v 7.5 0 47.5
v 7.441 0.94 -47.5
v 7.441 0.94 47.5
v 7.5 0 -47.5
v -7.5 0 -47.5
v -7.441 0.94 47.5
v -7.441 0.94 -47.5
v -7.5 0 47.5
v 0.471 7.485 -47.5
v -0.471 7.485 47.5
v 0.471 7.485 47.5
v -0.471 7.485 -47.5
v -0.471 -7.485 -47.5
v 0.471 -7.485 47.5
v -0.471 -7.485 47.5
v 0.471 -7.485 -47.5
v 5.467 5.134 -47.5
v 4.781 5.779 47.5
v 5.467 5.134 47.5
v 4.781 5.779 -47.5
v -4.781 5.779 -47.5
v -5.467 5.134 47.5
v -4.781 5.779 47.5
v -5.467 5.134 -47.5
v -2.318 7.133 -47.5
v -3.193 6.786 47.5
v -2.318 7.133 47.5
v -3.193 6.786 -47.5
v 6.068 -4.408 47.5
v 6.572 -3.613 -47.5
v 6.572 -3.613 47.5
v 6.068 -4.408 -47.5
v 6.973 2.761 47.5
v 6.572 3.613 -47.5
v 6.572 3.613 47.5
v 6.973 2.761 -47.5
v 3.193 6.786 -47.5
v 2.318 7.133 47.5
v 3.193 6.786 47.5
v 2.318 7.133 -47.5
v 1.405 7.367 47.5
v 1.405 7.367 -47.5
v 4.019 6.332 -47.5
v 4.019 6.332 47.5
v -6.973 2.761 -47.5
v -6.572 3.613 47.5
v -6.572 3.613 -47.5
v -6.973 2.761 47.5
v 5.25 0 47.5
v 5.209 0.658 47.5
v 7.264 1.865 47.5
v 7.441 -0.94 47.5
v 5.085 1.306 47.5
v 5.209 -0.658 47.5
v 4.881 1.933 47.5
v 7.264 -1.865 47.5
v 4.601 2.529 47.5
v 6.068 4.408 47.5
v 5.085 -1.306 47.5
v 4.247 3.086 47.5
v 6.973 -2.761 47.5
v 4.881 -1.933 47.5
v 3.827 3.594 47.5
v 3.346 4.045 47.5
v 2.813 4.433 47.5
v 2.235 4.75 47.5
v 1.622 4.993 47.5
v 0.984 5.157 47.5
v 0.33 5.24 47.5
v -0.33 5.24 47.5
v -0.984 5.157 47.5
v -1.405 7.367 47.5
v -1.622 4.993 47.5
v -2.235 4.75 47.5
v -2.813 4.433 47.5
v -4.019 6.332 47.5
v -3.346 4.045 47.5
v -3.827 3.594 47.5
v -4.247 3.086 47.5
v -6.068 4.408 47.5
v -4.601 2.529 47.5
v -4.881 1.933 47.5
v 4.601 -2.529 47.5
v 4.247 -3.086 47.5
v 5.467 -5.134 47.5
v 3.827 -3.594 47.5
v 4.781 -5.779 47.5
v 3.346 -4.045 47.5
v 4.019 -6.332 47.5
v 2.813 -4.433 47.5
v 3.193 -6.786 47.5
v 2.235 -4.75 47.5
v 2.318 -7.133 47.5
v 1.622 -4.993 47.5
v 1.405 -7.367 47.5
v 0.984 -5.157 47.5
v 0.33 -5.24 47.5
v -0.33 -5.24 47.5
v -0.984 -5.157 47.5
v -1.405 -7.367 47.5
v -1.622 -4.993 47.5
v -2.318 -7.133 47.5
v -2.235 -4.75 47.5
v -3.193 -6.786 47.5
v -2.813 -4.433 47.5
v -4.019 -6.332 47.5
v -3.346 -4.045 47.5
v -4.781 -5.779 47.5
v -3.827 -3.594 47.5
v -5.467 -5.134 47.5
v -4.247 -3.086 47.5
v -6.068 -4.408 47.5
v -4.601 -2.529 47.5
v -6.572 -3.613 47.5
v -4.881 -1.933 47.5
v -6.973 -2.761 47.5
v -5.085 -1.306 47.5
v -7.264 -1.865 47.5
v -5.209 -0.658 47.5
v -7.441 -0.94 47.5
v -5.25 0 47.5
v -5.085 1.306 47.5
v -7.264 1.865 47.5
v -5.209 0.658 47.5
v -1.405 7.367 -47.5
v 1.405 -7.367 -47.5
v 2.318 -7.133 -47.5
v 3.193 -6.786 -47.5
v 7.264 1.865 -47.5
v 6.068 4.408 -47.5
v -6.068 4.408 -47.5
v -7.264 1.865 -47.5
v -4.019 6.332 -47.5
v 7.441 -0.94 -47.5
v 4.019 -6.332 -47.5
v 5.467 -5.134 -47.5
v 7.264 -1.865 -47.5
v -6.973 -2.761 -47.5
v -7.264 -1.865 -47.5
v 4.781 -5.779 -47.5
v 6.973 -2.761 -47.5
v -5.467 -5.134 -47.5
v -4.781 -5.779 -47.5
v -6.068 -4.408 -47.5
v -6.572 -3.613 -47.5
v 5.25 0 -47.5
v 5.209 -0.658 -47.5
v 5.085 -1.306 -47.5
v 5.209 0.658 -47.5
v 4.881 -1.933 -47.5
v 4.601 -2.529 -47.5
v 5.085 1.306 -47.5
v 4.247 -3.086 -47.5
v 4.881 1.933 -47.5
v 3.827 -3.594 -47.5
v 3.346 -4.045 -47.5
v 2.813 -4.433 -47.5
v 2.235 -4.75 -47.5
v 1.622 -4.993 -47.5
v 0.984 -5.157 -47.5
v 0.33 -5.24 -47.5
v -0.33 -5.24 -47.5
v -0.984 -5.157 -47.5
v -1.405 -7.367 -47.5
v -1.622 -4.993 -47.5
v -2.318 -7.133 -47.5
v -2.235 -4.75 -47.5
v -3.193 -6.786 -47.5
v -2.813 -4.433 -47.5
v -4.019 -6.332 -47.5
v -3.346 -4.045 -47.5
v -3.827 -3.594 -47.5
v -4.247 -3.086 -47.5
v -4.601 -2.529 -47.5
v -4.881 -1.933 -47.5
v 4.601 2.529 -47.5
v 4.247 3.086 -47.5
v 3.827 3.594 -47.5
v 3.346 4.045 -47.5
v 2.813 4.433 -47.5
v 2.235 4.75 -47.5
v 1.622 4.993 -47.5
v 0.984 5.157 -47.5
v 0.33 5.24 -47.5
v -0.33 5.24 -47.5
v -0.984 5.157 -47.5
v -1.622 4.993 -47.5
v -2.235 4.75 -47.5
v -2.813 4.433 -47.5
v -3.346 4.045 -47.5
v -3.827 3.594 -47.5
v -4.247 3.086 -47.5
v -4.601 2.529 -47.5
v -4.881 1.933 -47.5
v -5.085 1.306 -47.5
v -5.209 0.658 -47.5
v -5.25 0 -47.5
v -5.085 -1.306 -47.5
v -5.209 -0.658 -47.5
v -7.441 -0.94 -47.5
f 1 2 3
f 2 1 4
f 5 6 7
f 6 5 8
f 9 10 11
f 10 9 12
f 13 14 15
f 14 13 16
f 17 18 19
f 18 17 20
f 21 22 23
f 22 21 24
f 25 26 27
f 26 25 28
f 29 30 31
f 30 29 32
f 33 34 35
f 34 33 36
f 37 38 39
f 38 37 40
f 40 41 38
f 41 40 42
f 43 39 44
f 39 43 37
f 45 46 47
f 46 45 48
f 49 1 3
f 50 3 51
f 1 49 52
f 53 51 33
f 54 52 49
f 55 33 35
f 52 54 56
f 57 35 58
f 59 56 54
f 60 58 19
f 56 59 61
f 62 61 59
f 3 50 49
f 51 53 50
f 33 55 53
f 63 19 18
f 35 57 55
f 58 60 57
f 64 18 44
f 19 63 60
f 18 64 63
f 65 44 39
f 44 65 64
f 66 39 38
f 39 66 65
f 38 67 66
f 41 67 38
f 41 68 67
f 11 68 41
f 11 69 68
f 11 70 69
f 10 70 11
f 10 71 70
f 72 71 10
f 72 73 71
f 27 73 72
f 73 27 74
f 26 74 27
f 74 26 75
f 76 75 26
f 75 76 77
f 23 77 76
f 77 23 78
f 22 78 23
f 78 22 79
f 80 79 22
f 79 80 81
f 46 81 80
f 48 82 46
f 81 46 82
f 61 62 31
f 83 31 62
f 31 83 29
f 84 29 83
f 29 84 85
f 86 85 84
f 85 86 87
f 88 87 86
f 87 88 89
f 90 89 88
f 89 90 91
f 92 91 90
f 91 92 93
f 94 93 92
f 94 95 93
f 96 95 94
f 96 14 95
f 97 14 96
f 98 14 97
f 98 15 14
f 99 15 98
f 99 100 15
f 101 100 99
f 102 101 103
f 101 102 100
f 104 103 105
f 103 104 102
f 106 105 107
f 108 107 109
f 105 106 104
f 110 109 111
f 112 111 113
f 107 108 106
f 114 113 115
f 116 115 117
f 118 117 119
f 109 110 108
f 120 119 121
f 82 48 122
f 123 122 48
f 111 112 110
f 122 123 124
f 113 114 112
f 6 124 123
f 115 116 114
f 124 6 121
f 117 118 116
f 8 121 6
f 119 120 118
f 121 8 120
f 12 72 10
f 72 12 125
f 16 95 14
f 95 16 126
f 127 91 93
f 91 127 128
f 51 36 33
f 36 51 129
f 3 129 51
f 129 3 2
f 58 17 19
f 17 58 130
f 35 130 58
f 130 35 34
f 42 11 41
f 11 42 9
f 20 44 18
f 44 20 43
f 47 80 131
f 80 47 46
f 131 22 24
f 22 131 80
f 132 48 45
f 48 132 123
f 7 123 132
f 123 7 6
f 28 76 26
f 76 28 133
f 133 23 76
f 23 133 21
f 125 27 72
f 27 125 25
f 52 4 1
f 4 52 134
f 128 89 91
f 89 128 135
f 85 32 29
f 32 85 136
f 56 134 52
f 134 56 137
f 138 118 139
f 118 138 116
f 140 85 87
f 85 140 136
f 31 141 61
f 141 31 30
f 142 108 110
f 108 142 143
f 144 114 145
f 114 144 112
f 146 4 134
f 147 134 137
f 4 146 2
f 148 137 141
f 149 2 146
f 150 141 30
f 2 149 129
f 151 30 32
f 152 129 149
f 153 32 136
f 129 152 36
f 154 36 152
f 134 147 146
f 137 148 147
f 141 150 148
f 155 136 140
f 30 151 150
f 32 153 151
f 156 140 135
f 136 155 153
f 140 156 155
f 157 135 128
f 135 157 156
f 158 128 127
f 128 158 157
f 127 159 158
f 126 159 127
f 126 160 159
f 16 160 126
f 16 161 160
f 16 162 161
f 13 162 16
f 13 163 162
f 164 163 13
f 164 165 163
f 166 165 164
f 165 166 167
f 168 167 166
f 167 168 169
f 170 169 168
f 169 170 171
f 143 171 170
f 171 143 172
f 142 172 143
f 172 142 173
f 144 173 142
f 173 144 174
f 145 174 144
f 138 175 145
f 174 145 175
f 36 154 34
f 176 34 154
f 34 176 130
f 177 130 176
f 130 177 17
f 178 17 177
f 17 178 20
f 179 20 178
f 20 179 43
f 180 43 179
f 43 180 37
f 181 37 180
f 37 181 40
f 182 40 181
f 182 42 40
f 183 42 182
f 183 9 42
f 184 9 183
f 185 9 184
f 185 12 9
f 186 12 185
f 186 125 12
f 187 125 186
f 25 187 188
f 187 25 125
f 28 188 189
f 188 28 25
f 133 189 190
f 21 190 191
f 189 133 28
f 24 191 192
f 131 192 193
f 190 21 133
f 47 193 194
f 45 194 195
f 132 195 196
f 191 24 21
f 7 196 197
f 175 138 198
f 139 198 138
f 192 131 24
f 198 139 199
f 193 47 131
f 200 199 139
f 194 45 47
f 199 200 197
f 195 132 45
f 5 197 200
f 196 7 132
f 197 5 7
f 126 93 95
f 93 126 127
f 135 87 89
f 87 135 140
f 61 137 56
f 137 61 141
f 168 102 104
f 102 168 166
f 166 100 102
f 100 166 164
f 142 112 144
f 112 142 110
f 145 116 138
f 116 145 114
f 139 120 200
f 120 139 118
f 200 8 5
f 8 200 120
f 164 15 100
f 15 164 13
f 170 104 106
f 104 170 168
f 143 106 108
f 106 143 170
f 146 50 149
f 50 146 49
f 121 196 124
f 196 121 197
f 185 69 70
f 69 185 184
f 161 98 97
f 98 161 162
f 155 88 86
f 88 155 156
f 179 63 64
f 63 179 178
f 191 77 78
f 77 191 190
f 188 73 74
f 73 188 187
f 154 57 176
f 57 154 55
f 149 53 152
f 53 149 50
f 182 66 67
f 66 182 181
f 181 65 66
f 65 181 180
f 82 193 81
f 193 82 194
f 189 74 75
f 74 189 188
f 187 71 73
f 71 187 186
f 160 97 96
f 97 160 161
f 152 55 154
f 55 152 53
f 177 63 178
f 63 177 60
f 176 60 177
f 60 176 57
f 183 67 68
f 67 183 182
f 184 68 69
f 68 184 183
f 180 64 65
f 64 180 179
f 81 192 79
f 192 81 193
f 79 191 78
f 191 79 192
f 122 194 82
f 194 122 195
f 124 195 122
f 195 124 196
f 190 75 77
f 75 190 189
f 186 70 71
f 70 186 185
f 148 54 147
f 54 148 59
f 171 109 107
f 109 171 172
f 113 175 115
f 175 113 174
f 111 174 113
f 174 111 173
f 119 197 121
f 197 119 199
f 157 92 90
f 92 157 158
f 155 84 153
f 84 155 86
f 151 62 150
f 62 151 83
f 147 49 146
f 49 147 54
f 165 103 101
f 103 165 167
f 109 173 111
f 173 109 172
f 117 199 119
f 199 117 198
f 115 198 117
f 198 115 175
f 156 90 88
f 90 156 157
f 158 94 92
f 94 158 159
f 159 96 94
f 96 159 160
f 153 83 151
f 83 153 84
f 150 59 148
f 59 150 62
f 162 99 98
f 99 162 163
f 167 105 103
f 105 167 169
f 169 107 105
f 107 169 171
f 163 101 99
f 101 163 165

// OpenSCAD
$fn = 50;


difference() {
	union() {
		translate(v = [0, 0, -47.5000000000]) {
			cylinder(h = 95, r = 7.5000000000);
		}
	}
	union() {
		translate(v = [0, 0, -100.0000000000]) {
			cylinder(h = 200, r = 5.2500000000);
		}
	}
}
